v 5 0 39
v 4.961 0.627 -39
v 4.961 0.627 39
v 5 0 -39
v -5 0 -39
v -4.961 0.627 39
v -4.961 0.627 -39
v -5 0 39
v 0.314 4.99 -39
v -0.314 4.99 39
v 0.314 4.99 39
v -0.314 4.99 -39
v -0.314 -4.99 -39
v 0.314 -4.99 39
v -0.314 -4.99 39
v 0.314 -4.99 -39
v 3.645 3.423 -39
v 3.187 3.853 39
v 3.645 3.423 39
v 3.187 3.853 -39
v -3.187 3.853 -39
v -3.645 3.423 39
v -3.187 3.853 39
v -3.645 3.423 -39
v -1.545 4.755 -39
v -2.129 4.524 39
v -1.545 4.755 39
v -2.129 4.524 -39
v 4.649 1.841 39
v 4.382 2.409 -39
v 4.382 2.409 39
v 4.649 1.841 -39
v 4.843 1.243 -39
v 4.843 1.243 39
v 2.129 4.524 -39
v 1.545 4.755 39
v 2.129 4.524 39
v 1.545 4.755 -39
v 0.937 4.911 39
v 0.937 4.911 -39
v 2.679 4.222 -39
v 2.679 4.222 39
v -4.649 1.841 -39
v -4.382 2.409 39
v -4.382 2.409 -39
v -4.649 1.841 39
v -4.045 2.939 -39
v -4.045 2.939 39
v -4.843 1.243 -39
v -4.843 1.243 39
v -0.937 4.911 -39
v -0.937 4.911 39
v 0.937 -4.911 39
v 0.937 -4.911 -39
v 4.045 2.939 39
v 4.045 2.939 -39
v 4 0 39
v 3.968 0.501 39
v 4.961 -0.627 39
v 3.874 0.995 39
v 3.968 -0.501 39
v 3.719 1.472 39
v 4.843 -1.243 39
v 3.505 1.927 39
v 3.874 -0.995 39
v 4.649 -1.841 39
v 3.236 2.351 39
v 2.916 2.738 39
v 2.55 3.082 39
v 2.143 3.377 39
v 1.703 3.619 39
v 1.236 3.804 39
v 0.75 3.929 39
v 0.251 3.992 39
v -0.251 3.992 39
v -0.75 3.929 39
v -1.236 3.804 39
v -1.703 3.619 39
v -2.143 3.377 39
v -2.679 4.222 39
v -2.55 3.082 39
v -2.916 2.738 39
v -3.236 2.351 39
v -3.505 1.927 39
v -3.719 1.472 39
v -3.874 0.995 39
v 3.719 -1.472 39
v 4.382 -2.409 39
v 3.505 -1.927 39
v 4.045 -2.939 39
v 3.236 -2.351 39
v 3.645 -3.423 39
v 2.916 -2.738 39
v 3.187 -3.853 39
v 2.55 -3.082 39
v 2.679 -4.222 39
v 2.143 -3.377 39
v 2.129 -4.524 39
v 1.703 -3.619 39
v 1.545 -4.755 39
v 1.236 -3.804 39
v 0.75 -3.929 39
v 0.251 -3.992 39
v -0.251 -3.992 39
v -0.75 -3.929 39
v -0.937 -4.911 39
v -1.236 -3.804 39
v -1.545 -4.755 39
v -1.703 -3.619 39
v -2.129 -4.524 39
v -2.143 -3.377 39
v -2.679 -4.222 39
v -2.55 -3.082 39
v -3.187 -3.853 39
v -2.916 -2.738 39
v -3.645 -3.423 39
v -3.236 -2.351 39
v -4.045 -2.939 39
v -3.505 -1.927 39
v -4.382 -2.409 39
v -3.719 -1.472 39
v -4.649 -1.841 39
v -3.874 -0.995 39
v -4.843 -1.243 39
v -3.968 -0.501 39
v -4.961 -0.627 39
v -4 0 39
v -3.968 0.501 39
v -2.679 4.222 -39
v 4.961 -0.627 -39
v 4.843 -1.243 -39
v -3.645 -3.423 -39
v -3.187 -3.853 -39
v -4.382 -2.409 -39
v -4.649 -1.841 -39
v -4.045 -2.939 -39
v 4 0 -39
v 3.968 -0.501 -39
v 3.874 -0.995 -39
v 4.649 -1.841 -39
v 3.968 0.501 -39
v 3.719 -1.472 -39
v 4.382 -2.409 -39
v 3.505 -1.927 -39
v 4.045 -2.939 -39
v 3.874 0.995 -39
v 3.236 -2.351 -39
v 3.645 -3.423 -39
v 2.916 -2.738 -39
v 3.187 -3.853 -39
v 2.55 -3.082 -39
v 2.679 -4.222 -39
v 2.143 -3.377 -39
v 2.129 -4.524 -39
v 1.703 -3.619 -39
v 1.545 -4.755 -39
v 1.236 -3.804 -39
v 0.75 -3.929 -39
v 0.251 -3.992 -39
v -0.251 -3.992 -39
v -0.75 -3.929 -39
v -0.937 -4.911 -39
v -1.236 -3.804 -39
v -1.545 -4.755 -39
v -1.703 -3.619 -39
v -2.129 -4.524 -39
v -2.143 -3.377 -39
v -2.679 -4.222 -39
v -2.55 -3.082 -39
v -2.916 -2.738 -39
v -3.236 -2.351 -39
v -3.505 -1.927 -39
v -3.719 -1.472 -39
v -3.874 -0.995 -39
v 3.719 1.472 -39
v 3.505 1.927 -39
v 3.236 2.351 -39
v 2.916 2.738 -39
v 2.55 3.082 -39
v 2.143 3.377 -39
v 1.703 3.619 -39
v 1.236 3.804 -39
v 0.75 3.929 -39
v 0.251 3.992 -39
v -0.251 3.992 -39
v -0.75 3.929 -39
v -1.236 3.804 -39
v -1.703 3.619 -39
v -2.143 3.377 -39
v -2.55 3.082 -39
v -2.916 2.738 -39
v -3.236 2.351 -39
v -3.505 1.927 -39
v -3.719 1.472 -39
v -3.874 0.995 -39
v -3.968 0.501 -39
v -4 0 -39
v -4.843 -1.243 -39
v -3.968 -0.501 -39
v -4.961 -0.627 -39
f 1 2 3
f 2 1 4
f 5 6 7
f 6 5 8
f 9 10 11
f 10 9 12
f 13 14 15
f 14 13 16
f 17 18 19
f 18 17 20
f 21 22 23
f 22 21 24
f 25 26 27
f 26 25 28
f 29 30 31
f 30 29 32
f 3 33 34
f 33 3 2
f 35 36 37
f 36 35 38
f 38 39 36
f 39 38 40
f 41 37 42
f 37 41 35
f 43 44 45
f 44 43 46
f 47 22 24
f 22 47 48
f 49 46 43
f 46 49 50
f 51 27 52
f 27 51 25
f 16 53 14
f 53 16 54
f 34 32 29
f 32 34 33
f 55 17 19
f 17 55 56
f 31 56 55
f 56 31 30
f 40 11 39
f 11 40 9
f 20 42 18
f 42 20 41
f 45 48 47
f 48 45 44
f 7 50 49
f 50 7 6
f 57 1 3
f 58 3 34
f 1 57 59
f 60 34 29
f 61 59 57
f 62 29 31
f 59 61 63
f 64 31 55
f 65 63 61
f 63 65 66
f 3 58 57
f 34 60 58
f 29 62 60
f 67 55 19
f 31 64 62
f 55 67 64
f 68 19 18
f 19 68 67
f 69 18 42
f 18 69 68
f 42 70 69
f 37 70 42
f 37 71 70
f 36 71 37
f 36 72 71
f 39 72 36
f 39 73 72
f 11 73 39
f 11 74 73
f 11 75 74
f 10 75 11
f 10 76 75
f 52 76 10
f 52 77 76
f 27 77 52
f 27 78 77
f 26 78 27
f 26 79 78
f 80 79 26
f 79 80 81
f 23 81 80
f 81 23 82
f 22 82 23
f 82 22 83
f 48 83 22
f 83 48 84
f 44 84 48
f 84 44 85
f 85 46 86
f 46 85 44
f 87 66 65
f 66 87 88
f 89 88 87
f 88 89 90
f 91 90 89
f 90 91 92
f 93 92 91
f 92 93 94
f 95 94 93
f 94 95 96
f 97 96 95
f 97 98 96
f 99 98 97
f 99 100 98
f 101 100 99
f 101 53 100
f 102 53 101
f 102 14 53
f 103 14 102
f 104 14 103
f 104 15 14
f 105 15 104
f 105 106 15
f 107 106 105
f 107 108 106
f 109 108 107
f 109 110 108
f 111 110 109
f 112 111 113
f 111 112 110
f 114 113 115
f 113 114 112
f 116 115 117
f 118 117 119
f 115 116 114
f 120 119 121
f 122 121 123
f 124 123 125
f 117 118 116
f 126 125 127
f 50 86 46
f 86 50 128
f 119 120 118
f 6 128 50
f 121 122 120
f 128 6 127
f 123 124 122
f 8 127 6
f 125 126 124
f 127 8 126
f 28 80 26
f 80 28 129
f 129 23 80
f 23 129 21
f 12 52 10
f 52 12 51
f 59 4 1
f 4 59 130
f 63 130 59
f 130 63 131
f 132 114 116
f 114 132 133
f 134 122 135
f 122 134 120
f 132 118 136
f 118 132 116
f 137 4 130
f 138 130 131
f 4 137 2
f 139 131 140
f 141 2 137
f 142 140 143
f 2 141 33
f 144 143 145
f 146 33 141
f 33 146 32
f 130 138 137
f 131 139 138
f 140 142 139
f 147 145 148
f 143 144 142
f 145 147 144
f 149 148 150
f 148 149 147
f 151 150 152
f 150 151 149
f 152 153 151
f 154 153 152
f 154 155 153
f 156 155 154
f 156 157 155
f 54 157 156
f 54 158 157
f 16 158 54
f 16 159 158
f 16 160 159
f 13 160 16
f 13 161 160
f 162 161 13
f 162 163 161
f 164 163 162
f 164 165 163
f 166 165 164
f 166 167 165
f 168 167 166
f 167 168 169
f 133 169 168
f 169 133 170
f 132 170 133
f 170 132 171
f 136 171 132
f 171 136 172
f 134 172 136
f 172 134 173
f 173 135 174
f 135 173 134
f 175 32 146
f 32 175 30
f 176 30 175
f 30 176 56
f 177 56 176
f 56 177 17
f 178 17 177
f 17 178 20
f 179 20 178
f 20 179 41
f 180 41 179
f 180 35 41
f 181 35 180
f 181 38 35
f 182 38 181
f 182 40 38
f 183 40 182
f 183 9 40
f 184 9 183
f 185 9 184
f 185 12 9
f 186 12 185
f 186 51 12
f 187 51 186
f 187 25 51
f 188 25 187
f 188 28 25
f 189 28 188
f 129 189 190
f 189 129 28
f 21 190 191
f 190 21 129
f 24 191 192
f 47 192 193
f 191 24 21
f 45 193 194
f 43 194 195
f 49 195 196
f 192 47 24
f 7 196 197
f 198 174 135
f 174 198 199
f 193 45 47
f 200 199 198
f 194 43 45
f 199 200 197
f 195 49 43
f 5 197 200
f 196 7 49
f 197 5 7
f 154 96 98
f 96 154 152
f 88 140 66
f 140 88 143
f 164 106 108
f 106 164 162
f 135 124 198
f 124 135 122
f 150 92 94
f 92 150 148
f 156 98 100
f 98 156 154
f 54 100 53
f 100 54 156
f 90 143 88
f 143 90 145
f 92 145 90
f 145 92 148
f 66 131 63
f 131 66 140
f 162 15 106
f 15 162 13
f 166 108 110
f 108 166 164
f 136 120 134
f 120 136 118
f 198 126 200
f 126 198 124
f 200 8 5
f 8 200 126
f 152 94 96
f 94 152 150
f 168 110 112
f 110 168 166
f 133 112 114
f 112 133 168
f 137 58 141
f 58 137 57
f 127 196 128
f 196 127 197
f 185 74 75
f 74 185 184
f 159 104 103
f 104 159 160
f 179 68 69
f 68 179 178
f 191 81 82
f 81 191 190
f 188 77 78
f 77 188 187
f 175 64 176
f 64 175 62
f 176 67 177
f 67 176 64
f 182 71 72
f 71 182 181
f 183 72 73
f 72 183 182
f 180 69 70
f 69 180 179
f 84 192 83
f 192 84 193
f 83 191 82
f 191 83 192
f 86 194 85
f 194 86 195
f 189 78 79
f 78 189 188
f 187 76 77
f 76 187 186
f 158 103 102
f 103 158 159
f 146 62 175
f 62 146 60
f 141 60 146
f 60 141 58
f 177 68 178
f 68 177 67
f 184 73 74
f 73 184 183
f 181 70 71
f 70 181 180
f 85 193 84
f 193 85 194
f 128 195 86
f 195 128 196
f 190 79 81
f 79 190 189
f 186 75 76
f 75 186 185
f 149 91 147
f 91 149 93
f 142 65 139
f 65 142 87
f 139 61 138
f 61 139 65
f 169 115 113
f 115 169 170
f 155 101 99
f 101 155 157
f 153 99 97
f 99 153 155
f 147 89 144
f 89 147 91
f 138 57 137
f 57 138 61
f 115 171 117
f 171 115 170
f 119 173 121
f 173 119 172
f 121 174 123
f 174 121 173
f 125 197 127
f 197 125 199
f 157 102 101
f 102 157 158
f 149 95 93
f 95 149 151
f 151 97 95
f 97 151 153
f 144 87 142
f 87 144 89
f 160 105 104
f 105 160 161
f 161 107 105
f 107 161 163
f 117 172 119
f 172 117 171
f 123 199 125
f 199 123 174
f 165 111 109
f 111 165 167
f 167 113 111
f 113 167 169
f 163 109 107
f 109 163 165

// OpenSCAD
$fn = 50;


difference() {
	union() {
		translate(v = [0, 0, -39.0000000000]) {
			cylinder(h = 78, r = 5.0000000000);
		}
	}
	union() {
		translate(v = [0, 0, -100.0000000000]) {
			cylinder(h = 200, r = 4);
		}
	}
}
